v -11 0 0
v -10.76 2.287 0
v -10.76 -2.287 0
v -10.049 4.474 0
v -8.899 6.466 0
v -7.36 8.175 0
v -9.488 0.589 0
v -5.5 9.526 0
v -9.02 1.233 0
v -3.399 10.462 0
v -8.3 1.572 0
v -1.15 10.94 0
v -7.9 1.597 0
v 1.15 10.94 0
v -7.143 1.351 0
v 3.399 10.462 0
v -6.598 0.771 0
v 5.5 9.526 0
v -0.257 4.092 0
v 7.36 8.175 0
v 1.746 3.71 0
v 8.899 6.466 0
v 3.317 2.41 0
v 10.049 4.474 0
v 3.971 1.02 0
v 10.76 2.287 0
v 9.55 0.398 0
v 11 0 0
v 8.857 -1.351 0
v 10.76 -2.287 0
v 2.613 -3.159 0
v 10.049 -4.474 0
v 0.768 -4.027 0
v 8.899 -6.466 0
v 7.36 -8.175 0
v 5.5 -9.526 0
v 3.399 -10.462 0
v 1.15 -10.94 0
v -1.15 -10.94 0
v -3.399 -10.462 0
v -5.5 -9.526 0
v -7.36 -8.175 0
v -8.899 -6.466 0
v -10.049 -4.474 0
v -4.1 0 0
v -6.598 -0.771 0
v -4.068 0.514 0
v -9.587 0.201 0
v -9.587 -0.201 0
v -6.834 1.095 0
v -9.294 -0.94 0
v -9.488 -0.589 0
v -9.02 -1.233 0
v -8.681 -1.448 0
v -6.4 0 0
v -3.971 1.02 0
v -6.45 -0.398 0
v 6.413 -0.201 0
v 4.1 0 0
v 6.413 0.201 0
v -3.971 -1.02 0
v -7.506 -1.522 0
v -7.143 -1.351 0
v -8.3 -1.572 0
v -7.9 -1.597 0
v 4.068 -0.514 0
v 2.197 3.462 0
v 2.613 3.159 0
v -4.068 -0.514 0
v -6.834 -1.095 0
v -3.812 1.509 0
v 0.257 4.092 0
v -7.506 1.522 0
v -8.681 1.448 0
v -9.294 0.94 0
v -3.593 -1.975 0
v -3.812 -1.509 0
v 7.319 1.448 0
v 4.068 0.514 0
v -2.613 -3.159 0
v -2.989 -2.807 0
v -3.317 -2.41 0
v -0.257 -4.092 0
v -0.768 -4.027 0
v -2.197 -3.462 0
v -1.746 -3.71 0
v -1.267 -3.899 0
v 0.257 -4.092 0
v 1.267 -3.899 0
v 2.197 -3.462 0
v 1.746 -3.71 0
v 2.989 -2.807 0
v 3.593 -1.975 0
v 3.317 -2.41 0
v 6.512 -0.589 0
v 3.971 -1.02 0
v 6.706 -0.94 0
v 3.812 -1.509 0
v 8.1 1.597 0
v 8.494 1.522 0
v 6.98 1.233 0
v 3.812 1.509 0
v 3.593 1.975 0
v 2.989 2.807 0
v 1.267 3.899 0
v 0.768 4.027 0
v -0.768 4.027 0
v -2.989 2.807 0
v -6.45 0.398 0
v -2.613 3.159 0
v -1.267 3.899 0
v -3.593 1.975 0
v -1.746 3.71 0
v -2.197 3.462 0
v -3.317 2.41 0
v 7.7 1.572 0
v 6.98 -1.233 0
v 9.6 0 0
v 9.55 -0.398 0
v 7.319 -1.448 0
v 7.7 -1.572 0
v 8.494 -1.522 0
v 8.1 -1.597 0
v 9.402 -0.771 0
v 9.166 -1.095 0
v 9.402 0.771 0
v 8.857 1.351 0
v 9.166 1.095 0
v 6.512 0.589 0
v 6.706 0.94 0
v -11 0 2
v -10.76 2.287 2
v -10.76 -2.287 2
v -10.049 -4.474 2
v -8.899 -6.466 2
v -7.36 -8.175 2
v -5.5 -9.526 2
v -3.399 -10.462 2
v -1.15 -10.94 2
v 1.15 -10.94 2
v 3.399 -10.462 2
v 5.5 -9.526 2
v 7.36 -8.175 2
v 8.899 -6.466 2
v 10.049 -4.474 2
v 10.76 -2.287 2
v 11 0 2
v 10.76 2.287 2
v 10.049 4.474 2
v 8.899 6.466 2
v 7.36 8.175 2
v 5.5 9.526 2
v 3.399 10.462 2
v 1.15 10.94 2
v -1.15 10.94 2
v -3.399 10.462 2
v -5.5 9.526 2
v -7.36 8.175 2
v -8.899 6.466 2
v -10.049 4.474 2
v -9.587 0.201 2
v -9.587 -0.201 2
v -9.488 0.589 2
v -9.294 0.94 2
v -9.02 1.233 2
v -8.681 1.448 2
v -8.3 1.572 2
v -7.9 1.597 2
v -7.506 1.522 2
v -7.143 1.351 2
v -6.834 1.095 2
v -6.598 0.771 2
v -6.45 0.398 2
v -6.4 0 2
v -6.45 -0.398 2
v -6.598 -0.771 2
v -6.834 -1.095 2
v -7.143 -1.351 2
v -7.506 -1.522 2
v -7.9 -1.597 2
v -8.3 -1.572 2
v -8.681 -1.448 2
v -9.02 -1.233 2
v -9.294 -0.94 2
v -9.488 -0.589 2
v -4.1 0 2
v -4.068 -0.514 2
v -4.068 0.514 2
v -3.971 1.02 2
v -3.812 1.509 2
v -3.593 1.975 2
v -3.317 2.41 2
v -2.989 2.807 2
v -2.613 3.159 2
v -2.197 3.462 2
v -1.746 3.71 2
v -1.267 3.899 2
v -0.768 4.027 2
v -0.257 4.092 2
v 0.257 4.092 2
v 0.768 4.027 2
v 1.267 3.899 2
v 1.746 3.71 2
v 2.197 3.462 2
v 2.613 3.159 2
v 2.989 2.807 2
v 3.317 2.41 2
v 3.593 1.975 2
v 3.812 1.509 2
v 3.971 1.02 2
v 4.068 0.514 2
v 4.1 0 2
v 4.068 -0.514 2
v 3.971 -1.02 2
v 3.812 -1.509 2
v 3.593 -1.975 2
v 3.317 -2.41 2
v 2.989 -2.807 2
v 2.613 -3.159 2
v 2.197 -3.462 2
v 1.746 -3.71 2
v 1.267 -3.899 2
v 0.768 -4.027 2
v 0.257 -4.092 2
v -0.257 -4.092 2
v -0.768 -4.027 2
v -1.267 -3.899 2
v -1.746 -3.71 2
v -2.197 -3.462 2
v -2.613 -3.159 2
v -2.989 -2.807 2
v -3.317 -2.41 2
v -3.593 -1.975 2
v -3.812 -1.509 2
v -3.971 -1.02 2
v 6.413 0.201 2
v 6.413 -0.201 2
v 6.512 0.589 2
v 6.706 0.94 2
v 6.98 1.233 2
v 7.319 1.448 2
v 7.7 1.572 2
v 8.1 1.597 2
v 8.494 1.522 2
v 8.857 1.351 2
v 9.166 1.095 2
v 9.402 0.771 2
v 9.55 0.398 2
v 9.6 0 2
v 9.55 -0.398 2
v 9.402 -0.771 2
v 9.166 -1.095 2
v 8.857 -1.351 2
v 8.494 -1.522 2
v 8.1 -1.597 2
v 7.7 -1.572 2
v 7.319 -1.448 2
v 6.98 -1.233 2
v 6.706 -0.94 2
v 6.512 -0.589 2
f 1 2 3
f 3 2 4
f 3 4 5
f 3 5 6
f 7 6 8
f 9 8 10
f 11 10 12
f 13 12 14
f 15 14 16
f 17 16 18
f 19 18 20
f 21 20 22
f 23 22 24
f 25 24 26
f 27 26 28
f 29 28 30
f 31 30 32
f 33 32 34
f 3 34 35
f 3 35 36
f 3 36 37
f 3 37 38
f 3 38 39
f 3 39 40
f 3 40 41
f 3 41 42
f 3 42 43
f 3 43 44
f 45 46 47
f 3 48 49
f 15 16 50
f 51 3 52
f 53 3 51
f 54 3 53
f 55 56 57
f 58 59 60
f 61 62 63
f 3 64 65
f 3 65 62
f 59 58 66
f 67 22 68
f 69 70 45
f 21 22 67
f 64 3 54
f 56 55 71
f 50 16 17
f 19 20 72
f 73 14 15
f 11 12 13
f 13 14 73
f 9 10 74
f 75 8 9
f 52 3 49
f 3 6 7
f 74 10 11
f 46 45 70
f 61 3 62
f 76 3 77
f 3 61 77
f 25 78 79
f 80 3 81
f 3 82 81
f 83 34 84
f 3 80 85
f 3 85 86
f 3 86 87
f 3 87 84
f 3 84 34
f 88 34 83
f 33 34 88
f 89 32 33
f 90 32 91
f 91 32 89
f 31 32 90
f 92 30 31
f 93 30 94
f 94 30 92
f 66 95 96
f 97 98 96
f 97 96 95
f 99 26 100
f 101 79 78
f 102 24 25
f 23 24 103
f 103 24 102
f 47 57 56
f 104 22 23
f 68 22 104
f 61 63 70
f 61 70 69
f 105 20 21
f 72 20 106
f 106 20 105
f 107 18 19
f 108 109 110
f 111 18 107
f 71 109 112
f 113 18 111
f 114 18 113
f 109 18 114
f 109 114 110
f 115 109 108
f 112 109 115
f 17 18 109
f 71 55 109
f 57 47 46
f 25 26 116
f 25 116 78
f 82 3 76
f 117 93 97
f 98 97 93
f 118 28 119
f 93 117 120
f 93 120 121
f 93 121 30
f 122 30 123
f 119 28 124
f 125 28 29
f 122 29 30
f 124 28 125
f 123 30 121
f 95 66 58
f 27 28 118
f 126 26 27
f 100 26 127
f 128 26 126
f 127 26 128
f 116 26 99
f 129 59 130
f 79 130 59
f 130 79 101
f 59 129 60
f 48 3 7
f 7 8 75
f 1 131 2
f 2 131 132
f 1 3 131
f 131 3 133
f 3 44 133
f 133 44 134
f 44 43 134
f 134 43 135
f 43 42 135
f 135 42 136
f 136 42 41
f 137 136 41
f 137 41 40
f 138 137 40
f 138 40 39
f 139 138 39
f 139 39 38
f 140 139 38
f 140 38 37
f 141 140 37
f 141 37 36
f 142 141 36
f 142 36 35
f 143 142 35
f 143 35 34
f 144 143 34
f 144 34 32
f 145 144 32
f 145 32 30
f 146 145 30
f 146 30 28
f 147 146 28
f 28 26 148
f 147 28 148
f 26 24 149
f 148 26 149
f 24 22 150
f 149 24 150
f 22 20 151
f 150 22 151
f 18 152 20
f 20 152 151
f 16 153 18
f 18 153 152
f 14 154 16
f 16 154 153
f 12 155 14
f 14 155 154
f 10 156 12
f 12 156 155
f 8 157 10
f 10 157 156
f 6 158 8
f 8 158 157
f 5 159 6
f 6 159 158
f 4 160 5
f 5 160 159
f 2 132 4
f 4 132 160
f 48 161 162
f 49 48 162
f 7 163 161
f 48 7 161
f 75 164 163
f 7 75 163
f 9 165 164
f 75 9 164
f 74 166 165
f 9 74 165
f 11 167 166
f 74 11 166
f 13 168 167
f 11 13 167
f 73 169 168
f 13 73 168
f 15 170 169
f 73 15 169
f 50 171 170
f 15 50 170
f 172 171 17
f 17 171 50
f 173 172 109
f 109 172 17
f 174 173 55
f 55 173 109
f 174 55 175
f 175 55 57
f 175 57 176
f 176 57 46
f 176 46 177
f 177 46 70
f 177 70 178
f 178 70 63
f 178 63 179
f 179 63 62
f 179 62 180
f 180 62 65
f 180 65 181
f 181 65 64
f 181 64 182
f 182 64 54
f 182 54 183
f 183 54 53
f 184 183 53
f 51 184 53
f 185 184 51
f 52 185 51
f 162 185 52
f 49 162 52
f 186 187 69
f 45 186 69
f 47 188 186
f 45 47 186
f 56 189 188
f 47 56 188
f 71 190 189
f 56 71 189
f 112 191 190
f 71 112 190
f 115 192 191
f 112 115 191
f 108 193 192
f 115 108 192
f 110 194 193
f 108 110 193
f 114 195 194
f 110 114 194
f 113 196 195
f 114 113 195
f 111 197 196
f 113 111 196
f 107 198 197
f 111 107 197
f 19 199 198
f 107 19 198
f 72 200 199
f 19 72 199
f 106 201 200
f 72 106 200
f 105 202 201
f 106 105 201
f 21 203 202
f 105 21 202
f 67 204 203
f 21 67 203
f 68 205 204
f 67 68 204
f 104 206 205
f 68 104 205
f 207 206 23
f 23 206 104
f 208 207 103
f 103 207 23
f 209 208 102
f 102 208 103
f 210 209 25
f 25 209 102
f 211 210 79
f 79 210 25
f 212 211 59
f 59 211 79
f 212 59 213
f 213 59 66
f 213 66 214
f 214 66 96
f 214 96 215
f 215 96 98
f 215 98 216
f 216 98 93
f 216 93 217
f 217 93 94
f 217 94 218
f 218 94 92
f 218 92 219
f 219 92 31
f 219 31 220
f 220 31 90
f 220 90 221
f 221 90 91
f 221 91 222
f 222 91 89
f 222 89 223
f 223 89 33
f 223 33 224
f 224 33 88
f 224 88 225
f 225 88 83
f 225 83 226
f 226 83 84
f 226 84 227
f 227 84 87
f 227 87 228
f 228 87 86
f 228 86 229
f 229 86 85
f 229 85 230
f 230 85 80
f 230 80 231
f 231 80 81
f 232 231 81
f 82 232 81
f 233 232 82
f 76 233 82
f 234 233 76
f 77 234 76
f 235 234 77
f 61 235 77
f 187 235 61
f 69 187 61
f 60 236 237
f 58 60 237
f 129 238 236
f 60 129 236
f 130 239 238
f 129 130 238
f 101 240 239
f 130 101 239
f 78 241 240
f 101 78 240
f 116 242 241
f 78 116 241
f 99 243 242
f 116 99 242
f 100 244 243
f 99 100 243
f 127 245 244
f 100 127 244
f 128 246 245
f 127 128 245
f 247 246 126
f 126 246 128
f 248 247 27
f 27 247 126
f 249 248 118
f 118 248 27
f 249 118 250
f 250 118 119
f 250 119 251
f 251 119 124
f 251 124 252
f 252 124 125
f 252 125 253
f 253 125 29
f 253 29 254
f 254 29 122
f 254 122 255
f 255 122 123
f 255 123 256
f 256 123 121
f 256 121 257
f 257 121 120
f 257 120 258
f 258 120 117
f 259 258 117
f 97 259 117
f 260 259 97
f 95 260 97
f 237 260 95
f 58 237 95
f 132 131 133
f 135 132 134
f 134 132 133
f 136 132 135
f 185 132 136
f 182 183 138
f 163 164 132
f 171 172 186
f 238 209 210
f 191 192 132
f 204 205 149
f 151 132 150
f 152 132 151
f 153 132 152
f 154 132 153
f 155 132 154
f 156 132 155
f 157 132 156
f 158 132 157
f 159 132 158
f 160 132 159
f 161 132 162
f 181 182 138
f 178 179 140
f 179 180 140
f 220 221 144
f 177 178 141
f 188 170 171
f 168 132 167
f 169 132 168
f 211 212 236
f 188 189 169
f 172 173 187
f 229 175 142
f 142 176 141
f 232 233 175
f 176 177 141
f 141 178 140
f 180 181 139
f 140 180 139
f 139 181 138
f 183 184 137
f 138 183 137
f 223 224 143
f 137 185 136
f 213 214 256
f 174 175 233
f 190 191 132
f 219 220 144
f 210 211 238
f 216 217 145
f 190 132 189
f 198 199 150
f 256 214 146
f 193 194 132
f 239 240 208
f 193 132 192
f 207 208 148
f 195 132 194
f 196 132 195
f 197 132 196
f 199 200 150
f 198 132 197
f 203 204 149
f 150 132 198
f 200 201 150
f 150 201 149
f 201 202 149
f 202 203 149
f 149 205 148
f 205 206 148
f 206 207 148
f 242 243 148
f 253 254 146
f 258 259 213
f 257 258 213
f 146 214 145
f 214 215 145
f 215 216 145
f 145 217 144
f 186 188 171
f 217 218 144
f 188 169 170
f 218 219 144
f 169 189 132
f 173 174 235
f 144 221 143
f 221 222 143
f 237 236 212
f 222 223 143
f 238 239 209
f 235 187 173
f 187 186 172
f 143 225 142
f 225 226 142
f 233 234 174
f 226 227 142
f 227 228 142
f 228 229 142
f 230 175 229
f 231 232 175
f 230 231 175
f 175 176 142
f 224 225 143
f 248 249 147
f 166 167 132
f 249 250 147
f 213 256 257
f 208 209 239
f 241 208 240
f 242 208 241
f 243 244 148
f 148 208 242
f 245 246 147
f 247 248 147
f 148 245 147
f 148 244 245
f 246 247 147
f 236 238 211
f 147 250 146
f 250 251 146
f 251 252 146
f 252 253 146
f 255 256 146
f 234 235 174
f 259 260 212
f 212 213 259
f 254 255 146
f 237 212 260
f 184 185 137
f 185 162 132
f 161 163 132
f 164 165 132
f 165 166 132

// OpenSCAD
leadscrew_nut_inner_diameter = 10.2;
leadscrew_nut_outter_diameter = 22;
leadscrew_nut_hole_from_center = 8;
leadscrew_dia = 8;
clearance = 0.2;
m3_screw_dia = 3;

difference() {
    cylinder(d=leadscrew_nut_outter_diameter, h=2);
    union() {
        for (i=[-1, 1]) translate([i* leadscrew_nut_hole_from_center,0,0]) cylinder(d=m3_screw_dia + clearance, h=2, $fn=25);
        cylinder(d=leadscrew_dia + clearance, h=2, $fn=50);
    }
}
